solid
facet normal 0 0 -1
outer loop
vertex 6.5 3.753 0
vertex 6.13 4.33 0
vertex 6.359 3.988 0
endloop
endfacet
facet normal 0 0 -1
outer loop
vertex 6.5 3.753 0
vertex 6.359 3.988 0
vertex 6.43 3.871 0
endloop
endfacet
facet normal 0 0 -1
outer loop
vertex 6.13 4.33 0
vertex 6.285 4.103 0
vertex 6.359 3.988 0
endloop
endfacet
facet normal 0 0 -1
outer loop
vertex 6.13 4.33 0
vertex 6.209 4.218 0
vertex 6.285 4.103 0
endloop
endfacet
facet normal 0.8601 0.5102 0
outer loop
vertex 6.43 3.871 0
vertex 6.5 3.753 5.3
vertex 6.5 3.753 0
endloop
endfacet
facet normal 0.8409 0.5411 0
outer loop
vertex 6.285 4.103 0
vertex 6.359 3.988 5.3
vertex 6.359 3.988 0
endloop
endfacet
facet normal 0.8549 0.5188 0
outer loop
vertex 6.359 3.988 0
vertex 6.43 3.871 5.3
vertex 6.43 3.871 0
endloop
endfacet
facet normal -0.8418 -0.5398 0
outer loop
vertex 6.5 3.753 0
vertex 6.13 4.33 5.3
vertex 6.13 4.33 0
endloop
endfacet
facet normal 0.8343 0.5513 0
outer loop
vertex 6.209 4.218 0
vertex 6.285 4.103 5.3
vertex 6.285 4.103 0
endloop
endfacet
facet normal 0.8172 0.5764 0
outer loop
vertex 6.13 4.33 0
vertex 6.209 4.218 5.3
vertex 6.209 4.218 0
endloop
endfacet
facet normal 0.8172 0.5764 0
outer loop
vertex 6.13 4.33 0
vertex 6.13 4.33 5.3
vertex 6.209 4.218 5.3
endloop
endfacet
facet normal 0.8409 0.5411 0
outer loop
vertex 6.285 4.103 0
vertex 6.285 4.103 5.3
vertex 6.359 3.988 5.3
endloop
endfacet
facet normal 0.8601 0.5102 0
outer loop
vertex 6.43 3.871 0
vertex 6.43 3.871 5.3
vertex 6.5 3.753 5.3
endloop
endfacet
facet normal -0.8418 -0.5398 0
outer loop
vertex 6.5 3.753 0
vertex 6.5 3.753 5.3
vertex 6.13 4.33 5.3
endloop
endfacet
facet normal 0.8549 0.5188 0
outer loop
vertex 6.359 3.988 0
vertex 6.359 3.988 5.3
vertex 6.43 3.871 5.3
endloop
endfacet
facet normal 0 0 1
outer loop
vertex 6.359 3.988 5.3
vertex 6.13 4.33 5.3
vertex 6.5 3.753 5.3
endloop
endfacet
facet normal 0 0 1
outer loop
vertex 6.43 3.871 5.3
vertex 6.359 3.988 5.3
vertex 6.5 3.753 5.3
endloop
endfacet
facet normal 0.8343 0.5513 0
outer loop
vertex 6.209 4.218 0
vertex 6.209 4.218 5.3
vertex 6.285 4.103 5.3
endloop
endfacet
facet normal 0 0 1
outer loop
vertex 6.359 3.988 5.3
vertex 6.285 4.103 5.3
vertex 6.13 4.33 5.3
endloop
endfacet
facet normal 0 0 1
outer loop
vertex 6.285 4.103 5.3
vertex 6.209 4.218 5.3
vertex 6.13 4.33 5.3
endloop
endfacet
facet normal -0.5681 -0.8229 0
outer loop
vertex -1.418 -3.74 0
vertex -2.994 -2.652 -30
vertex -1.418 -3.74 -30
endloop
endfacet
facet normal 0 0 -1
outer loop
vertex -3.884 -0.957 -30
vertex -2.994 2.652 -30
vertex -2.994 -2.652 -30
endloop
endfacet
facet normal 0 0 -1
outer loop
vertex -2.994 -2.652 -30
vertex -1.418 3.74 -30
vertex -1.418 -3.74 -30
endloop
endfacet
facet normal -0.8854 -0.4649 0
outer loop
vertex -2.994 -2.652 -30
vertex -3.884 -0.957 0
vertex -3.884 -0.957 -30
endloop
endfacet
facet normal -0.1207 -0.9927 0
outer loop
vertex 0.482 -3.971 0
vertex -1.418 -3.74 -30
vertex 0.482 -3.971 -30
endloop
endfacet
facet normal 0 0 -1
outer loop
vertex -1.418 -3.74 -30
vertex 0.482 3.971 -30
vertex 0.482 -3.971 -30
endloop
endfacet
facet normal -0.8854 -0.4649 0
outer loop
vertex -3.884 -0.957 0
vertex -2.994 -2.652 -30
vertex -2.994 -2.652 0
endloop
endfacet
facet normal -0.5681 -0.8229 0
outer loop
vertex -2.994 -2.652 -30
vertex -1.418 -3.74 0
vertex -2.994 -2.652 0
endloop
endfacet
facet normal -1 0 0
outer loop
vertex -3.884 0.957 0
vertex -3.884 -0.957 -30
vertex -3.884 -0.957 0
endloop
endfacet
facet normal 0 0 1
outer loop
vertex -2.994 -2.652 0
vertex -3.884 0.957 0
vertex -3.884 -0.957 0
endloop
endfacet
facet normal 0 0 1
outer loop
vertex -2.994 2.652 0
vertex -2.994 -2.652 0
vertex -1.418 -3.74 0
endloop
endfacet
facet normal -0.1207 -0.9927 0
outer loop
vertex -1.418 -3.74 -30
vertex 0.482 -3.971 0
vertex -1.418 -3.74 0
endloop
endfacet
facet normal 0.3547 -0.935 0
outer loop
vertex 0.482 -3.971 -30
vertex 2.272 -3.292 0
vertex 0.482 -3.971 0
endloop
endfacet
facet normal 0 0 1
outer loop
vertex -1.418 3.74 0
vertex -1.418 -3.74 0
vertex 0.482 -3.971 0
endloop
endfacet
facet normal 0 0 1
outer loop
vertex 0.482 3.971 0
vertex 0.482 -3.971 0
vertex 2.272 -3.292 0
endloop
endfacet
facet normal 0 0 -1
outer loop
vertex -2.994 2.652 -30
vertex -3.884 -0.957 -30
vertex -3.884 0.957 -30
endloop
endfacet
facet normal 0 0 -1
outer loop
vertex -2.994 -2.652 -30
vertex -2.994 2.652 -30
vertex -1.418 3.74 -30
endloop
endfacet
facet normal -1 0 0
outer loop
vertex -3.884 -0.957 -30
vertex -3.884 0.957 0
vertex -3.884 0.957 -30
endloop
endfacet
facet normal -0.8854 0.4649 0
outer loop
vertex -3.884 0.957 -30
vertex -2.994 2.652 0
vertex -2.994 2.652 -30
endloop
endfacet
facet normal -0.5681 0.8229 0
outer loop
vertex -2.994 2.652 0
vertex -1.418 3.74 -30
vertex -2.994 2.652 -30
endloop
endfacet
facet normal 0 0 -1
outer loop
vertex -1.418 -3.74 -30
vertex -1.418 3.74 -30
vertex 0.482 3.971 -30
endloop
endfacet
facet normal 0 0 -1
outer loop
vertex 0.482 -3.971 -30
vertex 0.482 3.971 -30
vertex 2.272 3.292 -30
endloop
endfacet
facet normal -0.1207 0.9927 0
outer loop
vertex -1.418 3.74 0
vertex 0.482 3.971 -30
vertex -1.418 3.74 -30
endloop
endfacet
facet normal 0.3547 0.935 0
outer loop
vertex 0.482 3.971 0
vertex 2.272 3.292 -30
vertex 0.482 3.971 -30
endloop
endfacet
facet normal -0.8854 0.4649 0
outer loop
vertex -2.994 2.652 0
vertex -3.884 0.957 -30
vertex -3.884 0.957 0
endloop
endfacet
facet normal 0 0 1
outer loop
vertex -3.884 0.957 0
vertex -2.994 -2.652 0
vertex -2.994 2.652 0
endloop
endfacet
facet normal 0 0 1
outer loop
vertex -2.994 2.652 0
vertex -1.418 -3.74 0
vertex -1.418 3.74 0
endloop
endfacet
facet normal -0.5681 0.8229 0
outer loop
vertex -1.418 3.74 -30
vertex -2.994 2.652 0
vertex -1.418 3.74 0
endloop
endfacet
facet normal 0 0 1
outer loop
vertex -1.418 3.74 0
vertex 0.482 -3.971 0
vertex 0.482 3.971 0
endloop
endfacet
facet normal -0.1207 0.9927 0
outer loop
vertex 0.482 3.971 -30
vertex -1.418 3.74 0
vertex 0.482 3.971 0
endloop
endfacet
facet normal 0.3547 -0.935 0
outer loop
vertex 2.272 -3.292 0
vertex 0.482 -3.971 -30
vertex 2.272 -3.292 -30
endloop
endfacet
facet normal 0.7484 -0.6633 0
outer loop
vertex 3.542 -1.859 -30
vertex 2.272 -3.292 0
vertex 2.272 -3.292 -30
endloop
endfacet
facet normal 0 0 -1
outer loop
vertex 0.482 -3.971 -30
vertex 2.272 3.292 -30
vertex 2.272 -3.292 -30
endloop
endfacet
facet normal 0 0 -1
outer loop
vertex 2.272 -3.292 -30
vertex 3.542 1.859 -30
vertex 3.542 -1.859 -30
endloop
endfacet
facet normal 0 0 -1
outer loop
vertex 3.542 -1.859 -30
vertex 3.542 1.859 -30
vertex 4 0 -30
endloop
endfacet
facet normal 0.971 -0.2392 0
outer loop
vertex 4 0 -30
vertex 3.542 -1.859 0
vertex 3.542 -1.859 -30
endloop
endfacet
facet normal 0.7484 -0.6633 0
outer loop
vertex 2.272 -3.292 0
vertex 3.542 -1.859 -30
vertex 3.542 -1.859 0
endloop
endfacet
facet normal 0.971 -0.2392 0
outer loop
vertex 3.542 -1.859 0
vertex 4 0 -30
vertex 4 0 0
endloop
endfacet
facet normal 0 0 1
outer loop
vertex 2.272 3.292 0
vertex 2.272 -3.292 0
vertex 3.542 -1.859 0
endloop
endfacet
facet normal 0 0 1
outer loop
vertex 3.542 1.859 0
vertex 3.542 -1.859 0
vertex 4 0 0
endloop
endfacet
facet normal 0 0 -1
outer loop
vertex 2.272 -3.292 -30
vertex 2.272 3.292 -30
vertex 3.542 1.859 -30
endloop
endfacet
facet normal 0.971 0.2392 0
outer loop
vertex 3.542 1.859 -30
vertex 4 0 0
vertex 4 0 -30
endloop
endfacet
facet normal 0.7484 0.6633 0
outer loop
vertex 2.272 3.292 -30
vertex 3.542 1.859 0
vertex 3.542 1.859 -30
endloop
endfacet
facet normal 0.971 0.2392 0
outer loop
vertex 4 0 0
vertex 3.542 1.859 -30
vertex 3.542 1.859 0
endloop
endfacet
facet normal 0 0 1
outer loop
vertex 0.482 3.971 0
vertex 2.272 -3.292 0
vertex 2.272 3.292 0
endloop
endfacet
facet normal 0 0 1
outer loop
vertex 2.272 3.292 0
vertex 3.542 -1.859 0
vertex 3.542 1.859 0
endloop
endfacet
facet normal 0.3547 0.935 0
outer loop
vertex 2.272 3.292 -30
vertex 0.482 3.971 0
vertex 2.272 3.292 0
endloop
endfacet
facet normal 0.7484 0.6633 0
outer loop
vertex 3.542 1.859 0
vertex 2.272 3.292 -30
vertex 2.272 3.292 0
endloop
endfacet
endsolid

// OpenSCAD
// OpenSCAD: M8 hex bolt (thread omitted), hex head + cylindrical shank
// Improvement: rotate hex head so across-flats aligns with X axis (flat faces facing left/right)

D = 13; // across-flats of hex head (mm)
R = D / sqrt(3); // hexagon circumradius for regular hex with given across-flats

points_hex = [
    for (i = [0 : 5])
        [ R * cos(i * 60 * PI / 180),
          R * sin(i * 60 * PI / 180) ]
];

// Head: hex prism, 5.3 mm tall, bottom at z = 0, rotated so flats align with X
module head() {
    rotate([0, 0, 30])
        linear_extrude(height = 5.3, center = false)
            polygon(points = points_hex);
}

// Shank: cylinder, diameter 8 mm (radius 4 mm), length 30 mm, extending into z < 0
module shank() {
    cylinder(h = 30, r = 4, center = false);
}

// Assemble: head on top (z 0..5.3), shank from z -30 .. 0
union() {
    head(); // z = 0 .. 5.3
    translate([0, 0, -30])
        shank(); // z = -30 .. 0
}
